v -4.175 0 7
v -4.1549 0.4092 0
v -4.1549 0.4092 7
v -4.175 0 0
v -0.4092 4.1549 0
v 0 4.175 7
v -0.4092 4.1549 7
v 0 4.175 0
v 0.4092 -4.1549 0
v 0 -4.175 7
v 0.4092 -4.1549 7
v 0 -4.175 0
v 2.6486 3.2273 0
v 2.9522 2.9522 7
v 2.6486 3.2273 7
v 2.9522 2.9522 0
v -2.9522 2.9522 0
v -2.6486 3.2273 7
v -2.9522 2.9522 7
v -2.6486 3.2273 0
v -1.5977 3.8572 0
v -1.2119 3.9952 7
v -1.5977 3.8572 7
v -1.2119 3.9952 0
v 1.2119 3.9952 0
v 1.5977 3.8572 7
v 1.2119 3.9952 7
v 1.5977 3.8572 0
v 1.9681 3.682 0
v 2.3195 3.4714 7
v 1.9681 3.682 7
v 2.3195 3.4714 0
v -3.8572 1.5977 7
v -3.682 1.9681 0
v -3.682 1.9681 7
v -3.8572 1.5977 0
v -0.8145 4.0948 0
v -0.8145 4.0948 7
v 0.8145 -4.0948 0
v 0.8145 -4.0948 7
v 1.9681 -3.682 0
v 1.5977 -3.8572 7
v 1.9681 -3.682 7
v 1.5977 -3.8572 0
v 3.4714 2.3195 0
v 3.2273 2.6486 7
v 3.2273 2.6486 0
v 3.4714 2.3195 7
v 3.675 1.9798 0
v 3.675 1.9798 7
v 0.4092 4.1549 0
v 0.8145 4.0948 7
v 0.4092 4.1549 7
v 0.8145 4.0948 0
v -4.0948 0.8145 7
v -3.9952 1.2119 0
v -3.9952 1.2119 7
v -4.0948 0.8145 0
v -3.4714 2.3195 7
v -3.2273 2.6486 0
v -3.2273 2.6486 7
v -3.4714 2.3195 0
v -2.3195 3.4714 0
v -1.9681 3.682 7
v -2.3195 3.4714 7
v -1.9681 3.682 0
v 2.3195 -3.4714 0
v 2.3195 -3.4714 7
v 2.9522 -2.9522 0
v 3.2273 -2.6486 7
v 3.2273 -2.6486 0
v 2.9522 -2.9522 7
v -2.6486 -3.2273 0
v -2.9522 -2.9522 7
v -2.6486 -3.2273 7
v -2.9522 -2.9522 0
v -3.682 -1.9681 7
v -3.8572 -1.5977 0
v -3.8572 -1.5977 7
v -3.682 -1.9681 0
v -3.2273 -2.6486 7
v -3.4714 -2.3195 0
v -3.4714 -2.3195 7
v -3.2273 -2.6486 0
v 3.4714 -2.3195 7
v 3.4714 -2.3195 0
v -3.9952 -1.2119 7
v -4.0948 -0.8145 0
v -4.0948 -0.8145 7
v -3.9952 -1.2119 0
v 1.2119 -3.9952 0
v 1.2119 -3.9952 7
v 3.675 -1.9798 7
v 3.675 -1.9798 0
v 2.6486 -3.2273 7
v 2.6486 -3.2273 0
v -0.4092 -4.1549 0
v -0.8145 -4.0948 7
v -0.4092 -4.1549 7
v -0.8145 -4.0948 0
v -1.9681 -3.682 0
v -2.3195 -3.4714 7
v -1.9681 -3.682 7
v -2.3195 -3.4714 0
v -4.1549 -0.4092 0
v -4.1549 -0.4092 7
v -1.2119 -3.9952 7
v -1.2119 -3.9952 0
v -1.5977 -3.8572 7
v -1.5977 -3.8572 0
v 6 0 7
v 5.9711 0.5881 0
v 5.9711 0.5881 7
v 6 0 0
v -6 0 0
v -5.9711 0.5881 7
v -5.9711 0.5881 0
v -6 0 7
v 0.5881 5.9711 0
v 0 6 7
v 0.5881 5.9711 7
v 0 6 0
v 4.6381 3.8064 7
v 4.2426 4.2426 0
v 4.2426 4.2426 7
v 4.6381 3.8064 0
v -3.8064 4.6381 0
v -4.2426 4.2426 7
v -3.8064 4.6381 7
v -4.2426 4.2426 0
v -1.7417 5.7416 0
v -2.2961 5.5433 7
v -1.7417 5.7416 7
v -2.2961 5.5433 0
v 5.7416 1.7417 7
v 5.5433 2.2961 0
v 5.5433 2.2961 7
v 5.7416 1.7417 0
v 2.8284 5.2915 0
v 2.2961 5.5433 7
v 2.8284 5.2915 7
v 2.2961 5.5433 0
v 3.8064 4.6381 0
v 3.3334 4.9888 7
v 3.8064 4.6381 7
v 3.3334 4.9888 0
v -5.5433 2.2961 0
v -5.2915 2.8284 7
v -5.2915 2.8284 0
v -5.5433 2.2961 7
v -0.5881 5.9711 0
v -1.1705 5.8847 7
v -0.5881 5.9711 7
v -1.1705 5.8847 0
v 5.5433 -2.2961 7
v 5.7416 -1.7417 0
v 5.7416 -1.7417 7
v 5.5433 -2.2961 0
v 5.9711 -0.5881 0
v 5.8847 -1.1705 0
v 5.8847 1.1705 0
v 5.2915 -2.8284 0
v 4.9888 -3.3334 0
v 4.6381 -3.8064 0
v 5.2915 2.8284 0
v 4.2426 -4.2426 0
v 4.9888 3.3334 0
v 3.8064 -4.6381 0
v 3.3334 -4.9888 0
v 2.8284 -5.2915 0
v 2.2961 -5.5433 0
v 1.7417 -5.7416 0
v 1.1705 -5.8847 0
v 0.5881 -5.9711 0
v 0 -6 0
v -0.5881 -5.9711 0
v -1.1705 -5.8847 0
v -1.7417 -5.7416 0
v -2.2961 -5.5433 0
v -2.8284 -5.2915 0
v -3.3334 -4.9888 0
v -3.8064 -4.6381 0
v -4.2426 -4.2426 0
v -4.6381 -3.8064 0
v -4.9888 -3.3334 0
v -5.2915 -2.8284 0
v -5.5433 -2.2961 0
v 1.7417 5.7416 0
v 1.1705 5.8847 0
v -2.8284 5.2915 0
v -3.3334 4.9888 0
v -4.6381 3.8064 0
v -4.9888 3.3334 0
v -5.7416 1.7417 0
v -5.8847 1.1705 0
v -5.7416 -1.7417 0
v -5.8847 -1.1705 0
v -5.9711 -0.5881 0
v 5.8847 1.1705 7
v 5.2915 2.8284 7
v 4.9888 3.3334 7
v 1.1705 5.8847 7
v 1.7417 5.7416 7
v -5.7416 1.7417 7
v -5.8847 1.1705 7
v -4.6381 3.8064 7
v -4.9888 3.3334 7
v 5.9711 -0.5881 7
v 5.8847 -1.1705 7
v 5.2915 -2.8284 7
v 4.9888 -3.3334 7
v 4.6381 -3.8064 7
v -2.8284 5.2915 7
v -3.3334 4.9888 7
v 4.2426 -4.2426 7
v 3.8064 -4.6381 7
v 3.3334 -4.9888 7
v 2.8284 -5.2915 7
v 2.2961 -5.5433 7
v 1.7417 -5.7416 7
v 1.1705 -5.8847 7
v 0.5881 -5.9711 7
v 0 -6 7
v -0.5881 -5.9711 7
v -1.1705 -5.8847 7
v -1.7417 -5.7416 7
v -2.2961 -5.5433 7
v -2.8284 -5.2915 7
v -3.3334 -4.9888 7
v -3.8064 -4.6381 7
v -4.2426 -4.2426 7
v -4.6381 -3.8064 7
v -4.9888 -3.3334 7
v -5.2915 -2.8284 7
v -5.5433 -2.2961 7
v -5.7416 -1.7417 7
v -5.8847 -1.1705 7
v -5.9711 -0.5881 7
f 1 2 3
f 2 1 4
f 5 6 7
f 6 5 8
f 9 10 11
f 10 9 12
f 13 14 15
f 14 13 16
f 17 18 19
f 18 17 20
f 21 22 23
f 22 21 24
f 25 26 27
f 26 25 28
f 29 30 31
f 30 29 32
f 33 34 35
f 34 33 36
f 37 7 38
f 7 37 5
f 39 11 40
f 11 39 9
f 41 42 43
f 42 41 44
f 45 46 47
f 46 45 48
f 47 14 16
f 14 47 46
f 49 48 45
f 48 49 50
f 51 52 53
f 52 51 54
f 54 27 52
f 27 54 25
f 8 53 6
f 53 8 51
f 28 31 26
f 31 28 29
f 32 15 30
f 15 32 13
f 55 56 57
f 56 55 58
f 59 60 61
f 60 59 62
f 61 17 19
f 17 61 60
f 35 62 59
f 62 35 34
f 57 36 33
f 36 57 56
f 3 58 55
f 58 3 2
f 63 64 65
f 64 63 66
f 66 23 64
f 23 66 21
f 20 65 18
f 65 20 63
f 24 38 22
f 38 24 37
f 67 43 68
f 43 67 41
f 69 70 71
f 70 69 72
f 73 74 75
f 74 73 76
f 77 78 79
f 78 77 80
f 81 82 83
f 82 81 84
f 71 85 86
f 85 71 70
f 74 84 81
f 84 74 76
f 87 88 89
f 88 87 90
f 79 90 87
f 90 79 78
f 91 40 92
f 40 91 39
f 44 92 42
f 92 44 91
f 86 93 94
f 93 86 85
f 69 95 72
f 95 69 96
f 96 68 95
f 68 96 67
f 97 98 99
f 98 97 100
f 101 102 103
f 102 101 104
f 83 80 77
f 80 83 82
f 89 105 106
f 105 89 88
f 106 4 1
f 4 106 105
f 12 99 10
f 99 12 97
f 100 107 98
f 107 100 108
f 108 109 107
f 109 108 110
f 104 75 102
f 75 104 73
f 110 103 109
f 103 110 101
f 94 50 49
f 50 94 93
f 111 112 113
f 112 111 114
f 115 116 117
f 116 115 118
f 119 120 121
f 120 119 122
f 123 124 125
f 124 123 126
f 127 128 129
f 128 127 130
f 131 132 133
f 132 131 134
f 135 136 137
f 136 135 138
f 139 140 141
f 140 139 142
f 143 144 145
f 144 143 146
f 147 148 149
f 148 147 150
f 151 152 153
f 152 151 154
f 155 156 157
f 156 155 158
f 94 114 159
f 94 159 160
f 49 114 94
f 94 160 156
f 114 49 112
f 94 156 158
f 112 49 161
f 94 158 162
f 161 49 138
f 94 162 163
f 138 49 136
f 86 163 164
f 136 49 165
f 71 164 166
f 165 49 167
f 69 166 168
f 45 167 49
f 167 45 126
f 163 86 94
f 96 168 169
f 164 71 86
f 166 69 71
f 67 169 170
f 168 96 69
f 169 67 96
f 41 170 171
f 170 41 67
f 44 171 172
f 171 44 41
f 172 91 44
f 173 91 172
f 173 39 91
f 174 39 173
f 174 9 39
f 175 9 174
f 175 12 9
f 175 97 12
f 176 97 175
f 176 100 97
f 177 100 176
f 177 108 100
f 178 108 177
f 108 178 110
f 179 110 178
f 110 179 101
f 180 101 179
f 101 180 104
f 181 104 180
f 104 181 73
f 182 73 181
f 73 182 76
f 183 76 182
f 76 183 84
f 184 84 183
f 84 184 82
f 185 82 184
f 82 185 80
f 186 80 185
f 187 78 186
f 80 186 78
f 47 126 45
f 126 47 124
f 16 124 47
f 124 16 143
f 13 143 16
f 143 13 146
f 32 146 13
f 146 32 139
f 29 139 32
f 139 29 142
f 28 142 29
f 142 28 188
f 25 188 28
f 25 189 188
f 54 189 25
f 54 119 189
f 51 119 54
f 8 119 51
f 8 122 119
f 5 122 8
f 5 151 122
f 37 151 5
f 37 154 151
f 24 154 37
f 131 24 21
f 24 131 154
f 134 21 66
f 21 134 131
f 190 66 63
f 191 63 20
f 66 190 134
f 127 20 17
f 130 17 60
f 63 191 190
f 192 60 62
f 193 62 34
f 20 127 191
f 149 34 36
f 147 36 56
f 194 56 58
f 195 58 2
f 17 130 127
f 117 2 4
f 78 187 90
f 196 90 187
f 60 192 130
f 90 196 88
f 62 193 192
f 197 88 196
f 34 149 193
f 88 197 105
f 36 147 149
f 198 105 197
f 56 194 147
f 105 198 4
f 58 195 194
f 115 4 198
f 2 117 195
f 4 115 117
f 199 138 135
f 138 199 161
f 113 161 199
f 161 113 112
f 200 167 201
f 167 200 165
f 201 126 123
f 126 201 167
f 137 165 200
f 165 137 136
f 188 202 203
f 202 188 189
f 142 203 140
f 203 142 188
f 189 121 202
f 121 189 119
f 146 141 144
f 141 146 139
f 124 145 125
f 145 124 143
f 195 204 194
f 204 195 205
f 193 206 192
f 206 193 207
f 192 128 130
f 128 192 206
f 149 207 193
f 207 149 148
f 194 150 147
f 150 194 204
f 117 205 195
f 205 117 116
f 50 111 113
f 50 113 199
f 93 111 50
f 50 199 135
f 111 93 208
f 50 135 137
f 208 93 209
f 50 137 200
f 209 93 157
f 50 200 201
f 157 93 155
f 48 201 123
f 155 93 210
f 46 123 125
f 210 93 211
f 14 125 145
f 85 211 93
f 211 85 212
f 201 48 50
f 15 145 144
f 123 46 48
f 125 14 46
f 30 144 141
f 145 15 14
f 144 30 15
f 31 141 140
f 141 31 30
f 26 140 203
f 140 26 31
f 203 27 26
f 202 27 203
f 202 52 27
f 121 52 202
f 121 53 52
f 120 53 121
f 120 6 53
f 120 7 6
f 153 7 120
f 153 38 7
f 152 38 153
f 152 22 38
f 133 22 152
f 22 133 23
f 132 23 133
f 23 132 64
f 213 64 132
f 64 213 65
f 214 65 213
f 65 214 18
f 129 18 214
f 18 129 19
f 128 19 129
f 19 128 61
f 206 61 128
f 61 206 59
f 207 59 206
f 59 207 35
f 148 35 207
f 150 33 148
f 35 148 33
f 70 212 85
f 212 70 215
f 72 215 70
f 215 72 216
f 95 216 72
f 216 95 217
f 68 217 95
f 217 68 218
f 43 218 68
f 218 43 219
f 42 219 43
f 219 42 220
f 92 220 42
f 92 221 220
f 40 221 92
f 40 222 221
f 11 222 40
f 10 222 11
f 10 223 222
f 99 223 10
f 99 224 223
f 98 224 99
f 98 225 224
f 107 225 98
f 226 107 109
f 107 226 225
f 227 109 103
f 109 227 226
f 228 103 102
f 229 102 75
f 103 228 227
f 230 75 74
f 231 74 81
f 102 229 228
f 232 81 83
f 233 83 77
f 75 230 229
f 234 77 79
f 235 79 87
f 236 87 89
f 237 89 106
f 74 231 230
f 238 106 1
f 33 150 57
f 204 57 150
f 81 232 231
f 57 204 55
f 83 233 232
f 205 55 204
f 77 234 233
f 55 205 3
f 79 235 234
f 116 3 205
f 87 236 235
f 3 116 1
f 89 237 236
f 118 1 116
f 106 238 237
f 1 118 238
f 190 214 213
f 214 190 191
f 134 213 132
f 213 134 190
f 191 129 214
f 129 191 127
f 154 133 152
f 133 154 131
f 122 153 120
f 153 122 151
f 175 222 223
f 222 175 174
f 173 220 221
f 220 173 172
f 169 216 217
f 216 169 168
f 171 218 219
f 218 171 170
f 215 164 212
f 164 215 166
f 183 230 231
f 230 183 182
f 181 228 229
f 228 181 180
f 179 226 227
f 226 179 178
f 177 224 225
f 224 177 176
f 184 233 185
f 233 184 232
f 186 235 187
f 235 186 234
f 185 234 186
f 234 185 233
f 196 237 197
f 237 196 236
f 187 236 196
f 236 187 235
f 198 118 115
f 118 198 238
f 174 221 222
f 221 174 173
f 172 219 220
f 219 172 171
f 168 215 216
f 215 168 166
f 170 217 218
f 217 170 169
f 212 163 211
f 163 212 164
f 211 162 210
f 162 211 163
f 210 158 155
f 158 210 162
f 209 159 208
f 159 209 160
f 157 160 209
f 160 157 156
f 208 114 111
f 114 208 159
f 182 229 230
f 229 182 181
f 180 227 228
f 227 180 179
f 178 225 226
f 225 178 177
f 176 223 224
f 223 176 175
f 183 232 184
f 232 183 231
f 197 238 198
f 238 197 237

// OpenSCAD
// Gen-EE — gap sleeve: rigid spacer on the shaft BETWEEN the two rotor carriers (passes through the stator
// hole). Length = m2m, so it sets the magnet gap and carries the full magnet pull. Print x1, upright.
include <parameters.scad>;
$fn = 64;
// D-flat keyed bore: flat faces +X (angle 0 = magnet pocket 0 = index notch)
module dflat_bore(h) {
    intersection() {
        cylinder(d=shaft_bore, h=h);
        translate([-shaft_bore, -shaft_bore, 0]) cube([shaft_bore + dflat_x, 2*shaft_bore, h]);
    }
}

difference() {
    cylinder(d=sleeve_od, h=m2m);
    translate([0, 0, -0.1]) dflat_bore(m2m + 0.2);
}
